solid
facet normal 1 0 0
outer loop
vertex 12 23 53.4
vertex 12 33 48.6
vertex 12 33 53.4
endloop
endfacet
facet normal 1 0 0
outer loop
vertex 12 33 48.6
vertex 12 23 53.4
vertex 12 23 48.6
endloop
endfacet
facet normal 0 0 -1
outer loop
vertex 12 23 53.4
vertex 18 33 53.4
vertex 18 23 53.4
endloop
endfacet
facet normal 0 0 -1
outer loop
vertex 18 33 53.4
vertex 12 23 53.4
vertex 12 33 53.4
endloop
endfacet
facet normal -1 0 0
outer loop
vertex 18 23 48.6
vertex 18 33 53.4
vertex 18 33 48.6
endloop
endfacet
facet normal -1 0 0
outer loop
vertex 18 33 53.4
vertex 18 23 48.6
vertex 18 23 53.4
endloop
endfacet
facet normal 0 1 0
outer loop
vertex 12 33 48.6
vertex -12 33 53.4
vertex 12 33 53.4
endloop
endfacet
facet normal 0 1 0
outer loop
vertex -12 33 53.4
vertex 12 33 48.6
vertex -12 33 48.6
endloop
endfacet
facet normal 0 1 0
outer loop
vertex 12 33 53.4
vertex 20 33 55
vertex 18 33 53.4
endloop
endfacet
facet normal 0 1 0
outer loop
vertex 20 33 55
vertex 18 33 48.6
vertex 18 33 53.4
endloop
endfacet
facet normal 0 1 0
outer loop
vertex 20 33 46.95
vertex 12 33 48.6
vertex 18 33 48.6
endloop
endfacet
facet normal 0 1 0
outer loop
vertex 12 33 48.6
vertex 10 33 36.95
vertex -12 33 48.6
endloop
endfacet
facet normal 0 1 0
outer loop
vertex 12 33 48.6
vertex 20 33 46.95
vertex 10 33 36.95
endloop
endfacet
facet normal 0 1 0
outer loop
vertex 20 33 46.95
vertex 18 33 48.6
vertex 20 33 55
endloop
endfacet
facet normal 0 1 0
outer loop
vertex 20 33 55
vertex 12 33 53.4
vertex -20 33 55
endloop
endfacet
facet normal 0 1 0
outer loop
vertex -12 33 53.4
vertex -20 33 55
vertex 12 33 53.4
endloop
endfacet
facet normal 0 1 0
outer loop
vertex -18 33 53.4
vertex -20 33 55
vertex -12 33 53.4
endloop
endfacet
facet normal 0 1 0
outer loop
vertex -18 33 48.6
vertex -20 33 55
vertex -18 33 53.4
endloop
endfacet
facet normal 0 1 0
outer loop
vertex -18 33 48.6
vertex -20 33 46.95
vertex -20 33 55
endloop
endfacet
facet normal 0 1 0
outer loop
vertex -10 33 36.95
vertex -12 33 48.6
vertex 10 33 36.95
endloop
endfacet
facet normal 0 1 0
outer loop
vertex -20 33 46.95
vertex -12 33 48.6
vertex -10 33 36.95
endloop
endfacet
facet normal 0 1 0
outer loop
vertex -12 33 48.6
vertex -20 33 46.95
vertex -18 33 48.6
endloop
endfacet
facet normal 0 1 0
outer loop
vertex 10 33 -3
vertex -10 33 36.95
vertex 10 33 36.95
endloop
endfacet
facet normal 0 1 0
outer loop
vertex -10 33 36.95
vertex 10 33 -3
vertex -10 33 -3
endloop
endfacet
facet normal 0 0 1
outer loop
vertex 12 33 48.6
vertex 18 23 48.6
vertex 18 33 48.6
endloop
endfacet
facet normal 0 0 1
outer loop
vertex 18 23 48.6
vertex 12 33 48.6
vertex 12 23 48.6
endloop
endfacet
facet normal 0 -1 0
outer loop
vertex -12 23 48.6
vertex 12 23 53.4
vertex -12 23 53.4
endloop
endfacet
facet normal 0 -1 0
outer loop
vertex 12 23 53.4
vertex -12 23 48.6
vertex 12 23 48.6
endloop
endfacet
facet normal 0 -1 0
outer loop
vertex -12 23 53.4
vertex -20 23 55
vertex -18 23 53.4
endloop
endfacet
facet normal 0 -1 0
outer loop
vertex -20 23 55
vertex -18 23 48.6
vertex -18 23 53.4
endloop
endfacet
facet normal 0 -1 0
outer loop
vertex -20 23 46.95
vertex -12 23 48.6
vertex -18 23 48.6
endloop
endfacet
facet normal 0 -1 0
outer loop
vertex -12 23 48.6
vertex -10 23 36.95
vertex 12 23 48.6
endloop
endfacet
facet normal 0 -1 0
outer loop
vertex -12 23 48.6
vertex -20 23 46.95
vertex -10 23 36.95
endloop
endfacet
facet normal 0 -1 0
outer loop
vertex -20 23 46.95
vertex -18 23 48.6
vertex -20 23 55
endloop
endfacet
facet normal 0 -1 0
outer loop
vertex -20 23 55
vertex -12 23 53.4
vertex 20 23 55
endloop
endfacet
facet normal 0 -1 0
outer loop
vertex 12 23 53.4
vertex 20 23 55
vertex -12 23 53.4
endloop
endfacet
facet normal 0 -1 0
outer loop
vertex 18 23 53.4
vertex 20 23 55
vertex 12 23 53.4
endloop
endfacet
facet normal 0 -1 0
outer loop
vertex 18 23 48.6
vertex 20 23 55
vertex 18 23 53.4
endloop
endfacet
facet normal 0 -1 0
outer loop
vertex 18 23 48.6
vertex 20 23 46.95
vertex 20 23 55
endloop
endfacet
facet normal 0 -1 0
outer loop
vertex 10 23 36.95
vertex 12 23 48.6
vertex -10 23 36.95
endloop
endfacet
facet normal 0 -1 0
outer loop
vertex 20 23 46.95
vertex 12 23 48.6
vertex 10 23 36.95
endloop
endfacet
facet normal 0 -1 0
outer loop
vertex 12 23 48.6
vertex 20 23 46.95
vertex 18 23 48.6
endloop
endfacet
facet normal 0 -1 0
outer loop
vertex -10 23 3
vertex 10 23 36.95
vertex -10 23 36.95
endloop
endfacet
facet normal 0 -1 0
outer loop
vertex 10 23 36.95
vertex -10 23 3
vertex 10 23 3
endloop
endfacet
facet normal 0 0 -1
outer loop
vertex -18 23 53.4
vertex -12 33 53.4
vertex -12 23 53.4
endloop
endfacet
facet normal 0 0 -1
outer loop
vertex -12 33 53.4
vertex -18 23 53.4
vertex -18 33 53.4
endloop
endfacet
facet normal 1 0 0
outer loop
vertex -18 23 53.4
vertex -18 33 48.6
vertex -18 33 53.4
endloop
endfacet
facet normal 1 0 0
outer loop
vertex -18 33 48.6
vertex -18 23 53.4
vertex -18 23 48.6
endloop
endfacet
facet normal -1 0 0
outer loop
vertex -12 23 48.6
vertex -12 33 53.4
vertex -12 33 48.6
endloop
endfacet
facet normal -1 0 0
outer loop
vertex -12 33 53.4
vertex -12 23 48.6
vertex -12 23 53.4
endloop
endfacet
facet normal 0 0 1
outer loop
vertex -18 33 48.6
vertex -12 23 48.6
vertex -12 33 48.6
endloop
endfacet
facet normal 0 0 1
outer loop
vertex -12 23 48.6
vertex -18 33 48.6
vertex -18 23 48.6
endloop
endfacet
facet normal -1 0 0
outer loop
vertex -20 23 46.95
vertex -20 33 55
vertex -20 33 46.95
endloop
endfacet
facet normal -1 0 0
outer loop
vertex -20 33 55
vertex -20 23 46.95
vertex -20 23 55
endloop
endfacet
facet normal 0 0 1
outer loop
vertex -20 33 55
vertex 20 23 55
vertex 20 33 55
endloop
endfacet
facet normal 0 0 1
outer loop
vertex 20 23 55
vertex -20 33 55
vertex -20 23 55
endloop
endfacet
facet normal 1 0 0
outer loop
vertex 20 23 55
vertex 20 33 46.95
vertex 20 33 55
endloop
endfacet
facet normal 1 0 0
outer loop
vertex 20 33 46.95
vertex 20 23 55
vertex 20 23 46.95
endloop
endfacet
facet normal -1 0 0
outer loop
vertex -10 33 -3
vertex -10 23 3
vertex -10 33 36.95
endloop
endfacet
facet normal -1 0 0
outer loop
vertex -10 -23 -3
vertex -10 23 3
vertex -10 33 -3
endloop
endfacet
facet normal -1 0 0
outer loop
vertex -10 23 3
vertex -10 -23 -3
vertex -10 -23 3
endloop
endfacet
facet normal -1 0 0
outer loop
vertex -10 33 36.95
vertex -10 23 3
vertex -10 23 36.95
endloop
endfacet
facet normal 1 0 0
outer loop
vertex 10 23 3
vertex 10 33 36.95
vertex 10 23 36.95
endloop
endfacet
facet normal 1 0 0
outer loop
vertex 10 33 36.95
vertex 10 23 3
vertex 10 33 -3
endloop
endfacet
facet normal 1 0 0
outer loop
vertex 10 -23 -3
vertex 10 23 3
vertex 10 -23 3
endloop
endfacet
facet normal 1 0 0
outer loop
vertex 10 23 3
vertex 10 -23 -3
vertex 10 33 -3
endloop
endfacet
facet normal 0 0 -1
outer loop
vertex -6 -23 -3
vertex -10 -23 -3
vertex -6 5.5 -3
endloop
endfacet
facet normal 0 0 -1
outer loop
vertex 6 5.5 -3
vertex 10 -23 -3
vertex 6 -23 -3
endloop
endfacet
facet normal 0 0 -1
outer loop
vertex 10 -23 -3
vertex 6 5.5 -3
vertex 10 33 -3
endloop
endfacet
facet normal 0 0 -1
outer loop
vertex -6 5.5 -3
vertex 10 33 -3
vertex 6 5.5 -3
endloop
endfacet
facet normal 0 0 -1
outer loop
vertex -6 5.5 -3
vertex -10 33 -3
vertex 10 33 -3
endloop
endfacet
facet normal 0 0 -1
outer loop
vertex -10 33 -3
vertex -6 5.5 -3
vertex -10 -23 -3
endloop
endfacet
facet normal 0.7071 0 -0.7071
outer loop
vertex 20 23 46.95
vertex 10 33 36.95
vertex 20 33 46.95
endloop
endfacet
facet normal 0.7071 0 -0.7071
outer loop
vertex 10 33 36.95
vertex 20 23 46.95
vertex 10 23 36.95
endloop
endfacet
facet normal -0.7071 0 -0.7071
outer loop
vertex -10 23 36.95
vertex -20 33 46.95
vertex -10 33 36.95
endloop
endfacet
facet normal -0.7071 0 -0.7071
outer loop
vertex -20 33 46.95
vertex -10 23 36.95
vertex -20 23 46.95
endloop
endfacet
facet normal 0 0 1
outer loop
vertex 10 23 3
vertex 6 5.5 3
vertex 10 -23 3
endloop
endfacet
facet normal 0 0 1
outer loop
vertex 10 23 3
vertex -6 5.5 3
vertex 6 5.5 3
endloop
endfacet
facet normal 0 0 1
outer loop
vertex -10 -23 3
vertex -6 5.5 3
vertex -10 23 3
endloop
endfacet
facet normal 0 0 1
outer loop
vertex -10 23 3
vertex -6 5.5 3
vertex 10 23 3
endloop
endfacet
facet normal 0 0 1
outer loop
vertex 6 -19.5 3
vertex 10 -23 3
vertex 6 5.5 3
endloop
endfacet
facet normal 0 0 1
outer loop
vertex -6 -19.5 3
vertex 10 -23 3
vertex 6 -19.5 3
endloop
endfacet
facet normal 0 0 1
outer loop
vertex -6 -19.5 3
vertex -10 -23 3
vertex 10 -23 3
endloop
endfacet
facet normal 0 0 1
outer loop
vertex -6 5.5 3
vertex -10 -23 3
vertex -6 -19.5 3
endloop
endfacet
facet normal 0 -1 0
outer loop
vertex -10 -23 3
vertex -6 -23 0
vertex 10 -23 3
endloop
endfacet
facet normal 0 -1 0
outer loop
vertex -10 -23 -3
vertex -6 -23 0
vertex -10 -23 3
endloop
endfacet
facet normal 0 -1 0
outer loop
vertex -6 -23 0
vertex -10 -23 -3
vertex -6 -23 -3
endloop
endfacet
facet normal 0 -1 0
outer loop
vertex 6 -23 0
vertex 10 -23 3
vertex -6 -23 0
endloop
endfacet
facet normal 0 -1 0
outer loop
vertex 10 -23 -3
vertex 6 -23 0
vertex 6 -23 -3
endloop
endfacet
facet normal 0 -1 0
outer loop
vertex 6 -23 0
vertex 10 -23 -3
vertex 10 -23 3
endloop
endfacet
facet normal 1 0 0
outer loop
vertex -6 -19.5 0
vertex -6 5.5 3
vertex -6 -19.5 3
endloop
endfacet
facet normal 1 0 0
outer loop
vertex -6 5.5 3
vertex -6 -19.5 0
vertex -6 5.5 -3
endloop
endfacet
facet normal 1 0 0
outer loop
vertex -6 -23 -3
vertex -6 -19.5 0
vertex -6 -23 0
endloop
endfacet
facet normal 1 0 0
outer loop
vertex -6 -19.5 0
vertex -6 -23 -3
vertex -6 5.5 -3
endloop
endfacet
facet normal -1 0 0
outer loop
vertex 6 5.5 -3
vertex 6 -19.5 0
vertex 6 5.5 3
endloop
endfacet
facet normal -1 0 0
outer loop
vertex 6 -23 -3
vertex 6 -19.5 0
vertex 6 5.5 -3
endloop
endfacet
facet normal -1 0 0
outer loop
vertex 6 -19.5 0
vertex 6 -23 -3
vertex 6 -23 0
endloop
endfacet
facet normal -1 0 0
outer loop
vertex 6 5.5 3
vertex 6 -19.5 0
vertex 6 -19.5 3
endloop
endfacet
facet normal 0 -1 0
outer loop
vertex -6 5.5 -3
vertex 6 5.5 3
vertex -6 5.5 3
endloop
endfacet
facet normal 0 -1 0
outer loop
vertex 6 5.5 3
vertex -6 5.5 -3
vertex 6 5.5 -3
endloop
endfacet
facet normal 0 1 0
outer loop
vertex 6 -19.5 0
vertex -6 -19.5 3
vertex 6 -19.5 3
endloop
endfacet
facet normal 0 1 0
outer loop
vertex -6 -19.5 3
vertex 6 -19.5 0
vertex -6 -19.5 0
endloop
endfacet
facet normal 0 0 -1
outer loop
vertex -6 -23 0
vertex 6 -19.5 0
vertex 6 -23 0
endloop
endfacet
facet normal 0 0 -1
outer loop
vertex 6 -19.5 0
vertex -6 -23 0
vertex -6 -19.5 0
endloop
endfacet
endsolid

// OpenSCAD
// file: parameters.scad
//parameters

//base
back_length = 10;
outer_width = 20;
outer_length = 36+back_length;
inner_width = 12;
inner_length = 25;
base_height = 6;
front_offset = round((outer_length-inner_length)/2)-4;
back_component_length = 10;
back_component_height = 50;
back_offset = outer_length/2+back_component_length/2;
top_component_height = 8;
top_component_width = 40;

//hangon
contact_delta = 50;
hangon_support_length = 8;
hangon_support_delta = 2.5;
hangon_support_distance = (top_component_width/2-round((top_component_width*0.1)/2)-hangon_support_delta);
shaft_center = (-hangon_support_length-((hangon_support_distance+10)/2))-contact_delta;
hangon_base_diameter = hangon_support_distance+30;

//fixture
top_part_diplacement = 8;
leg_width = 2;
clickon_height = 2;
// file: servo.scad
//parameters
servo_width = 12;
servo_length = 24;
servo_height = 24;
ex_length = 5;
ex_height = 4;
shaft_offset = 5;
shaft_radius = 5;
shaft_height = 5;

module mirror_copy(vec=[0,1,0]){
    children();
    mirror(vec)children();
}

module back_holes(){
    mirror_copy([1,0,0])translate([top_component_width/2-round((top_component_width*0.1)/2)-3,0,0])
    cube([round(top_component_width*0.15),back_component_length,top_component_height*0.6], true);    
}

module servo(){
    translate([0,0,servo_height/2])
    union(){
        //extrusion
        mirror_copy()
            translate([0,servo_length/2+ex_length/2,(servo_height/2)-ex_height/2])
                cube([servo_width, ex_length, ex_height], true);
        //shaft
        translate([0,-servo_length/2+shaft_radius,servo_height/2+shaft_height/2])
        cylinder(shaft_height, shaft_radius, shaft_radius, true);
        //base
        cube([servo_width, servo_length, servo_height], true);
    }
}
// main file
include <servo.scad>
include <parameters.scad>

module tower_base(){
    union(){
        //back tower
        union(){
            translate([0,back_offset,(back_component_height/2)-base_height/2])
            union(){
                //back holes
                translate([0,0,back_component_height/2+top_component_height/2])
                difference(){
                    cube([top_component_width,back_component_length,top_component_height], true);
                    back_holes();
                    
                }
                //back component
                cube([outer_width,back_component_length,back_component_height], true);
                //triangle supports
                hull(){
                    translate([0,0,back_component_height/2])
                    cube([top_component_width,back_component_length,0.1], true);
                    translate([0,0,back_component_height/2-10])
                    cube([outer_width,back_component_length,0.1], true);
                }
            }
        }
        //base
        difference(){
            difference(){
                cube([outer_width,outer_length,base_height], true);
                translate([0,-front_offset,0])
                cube([inner_width,inner_length,base_height], true);
            }
            translate([0,-outer_length/2+2,-2])
            cube([inner_width,4,4], true);
        }
    }
}

tower_base();
translate([0,-front_offset,0])
%servo();
